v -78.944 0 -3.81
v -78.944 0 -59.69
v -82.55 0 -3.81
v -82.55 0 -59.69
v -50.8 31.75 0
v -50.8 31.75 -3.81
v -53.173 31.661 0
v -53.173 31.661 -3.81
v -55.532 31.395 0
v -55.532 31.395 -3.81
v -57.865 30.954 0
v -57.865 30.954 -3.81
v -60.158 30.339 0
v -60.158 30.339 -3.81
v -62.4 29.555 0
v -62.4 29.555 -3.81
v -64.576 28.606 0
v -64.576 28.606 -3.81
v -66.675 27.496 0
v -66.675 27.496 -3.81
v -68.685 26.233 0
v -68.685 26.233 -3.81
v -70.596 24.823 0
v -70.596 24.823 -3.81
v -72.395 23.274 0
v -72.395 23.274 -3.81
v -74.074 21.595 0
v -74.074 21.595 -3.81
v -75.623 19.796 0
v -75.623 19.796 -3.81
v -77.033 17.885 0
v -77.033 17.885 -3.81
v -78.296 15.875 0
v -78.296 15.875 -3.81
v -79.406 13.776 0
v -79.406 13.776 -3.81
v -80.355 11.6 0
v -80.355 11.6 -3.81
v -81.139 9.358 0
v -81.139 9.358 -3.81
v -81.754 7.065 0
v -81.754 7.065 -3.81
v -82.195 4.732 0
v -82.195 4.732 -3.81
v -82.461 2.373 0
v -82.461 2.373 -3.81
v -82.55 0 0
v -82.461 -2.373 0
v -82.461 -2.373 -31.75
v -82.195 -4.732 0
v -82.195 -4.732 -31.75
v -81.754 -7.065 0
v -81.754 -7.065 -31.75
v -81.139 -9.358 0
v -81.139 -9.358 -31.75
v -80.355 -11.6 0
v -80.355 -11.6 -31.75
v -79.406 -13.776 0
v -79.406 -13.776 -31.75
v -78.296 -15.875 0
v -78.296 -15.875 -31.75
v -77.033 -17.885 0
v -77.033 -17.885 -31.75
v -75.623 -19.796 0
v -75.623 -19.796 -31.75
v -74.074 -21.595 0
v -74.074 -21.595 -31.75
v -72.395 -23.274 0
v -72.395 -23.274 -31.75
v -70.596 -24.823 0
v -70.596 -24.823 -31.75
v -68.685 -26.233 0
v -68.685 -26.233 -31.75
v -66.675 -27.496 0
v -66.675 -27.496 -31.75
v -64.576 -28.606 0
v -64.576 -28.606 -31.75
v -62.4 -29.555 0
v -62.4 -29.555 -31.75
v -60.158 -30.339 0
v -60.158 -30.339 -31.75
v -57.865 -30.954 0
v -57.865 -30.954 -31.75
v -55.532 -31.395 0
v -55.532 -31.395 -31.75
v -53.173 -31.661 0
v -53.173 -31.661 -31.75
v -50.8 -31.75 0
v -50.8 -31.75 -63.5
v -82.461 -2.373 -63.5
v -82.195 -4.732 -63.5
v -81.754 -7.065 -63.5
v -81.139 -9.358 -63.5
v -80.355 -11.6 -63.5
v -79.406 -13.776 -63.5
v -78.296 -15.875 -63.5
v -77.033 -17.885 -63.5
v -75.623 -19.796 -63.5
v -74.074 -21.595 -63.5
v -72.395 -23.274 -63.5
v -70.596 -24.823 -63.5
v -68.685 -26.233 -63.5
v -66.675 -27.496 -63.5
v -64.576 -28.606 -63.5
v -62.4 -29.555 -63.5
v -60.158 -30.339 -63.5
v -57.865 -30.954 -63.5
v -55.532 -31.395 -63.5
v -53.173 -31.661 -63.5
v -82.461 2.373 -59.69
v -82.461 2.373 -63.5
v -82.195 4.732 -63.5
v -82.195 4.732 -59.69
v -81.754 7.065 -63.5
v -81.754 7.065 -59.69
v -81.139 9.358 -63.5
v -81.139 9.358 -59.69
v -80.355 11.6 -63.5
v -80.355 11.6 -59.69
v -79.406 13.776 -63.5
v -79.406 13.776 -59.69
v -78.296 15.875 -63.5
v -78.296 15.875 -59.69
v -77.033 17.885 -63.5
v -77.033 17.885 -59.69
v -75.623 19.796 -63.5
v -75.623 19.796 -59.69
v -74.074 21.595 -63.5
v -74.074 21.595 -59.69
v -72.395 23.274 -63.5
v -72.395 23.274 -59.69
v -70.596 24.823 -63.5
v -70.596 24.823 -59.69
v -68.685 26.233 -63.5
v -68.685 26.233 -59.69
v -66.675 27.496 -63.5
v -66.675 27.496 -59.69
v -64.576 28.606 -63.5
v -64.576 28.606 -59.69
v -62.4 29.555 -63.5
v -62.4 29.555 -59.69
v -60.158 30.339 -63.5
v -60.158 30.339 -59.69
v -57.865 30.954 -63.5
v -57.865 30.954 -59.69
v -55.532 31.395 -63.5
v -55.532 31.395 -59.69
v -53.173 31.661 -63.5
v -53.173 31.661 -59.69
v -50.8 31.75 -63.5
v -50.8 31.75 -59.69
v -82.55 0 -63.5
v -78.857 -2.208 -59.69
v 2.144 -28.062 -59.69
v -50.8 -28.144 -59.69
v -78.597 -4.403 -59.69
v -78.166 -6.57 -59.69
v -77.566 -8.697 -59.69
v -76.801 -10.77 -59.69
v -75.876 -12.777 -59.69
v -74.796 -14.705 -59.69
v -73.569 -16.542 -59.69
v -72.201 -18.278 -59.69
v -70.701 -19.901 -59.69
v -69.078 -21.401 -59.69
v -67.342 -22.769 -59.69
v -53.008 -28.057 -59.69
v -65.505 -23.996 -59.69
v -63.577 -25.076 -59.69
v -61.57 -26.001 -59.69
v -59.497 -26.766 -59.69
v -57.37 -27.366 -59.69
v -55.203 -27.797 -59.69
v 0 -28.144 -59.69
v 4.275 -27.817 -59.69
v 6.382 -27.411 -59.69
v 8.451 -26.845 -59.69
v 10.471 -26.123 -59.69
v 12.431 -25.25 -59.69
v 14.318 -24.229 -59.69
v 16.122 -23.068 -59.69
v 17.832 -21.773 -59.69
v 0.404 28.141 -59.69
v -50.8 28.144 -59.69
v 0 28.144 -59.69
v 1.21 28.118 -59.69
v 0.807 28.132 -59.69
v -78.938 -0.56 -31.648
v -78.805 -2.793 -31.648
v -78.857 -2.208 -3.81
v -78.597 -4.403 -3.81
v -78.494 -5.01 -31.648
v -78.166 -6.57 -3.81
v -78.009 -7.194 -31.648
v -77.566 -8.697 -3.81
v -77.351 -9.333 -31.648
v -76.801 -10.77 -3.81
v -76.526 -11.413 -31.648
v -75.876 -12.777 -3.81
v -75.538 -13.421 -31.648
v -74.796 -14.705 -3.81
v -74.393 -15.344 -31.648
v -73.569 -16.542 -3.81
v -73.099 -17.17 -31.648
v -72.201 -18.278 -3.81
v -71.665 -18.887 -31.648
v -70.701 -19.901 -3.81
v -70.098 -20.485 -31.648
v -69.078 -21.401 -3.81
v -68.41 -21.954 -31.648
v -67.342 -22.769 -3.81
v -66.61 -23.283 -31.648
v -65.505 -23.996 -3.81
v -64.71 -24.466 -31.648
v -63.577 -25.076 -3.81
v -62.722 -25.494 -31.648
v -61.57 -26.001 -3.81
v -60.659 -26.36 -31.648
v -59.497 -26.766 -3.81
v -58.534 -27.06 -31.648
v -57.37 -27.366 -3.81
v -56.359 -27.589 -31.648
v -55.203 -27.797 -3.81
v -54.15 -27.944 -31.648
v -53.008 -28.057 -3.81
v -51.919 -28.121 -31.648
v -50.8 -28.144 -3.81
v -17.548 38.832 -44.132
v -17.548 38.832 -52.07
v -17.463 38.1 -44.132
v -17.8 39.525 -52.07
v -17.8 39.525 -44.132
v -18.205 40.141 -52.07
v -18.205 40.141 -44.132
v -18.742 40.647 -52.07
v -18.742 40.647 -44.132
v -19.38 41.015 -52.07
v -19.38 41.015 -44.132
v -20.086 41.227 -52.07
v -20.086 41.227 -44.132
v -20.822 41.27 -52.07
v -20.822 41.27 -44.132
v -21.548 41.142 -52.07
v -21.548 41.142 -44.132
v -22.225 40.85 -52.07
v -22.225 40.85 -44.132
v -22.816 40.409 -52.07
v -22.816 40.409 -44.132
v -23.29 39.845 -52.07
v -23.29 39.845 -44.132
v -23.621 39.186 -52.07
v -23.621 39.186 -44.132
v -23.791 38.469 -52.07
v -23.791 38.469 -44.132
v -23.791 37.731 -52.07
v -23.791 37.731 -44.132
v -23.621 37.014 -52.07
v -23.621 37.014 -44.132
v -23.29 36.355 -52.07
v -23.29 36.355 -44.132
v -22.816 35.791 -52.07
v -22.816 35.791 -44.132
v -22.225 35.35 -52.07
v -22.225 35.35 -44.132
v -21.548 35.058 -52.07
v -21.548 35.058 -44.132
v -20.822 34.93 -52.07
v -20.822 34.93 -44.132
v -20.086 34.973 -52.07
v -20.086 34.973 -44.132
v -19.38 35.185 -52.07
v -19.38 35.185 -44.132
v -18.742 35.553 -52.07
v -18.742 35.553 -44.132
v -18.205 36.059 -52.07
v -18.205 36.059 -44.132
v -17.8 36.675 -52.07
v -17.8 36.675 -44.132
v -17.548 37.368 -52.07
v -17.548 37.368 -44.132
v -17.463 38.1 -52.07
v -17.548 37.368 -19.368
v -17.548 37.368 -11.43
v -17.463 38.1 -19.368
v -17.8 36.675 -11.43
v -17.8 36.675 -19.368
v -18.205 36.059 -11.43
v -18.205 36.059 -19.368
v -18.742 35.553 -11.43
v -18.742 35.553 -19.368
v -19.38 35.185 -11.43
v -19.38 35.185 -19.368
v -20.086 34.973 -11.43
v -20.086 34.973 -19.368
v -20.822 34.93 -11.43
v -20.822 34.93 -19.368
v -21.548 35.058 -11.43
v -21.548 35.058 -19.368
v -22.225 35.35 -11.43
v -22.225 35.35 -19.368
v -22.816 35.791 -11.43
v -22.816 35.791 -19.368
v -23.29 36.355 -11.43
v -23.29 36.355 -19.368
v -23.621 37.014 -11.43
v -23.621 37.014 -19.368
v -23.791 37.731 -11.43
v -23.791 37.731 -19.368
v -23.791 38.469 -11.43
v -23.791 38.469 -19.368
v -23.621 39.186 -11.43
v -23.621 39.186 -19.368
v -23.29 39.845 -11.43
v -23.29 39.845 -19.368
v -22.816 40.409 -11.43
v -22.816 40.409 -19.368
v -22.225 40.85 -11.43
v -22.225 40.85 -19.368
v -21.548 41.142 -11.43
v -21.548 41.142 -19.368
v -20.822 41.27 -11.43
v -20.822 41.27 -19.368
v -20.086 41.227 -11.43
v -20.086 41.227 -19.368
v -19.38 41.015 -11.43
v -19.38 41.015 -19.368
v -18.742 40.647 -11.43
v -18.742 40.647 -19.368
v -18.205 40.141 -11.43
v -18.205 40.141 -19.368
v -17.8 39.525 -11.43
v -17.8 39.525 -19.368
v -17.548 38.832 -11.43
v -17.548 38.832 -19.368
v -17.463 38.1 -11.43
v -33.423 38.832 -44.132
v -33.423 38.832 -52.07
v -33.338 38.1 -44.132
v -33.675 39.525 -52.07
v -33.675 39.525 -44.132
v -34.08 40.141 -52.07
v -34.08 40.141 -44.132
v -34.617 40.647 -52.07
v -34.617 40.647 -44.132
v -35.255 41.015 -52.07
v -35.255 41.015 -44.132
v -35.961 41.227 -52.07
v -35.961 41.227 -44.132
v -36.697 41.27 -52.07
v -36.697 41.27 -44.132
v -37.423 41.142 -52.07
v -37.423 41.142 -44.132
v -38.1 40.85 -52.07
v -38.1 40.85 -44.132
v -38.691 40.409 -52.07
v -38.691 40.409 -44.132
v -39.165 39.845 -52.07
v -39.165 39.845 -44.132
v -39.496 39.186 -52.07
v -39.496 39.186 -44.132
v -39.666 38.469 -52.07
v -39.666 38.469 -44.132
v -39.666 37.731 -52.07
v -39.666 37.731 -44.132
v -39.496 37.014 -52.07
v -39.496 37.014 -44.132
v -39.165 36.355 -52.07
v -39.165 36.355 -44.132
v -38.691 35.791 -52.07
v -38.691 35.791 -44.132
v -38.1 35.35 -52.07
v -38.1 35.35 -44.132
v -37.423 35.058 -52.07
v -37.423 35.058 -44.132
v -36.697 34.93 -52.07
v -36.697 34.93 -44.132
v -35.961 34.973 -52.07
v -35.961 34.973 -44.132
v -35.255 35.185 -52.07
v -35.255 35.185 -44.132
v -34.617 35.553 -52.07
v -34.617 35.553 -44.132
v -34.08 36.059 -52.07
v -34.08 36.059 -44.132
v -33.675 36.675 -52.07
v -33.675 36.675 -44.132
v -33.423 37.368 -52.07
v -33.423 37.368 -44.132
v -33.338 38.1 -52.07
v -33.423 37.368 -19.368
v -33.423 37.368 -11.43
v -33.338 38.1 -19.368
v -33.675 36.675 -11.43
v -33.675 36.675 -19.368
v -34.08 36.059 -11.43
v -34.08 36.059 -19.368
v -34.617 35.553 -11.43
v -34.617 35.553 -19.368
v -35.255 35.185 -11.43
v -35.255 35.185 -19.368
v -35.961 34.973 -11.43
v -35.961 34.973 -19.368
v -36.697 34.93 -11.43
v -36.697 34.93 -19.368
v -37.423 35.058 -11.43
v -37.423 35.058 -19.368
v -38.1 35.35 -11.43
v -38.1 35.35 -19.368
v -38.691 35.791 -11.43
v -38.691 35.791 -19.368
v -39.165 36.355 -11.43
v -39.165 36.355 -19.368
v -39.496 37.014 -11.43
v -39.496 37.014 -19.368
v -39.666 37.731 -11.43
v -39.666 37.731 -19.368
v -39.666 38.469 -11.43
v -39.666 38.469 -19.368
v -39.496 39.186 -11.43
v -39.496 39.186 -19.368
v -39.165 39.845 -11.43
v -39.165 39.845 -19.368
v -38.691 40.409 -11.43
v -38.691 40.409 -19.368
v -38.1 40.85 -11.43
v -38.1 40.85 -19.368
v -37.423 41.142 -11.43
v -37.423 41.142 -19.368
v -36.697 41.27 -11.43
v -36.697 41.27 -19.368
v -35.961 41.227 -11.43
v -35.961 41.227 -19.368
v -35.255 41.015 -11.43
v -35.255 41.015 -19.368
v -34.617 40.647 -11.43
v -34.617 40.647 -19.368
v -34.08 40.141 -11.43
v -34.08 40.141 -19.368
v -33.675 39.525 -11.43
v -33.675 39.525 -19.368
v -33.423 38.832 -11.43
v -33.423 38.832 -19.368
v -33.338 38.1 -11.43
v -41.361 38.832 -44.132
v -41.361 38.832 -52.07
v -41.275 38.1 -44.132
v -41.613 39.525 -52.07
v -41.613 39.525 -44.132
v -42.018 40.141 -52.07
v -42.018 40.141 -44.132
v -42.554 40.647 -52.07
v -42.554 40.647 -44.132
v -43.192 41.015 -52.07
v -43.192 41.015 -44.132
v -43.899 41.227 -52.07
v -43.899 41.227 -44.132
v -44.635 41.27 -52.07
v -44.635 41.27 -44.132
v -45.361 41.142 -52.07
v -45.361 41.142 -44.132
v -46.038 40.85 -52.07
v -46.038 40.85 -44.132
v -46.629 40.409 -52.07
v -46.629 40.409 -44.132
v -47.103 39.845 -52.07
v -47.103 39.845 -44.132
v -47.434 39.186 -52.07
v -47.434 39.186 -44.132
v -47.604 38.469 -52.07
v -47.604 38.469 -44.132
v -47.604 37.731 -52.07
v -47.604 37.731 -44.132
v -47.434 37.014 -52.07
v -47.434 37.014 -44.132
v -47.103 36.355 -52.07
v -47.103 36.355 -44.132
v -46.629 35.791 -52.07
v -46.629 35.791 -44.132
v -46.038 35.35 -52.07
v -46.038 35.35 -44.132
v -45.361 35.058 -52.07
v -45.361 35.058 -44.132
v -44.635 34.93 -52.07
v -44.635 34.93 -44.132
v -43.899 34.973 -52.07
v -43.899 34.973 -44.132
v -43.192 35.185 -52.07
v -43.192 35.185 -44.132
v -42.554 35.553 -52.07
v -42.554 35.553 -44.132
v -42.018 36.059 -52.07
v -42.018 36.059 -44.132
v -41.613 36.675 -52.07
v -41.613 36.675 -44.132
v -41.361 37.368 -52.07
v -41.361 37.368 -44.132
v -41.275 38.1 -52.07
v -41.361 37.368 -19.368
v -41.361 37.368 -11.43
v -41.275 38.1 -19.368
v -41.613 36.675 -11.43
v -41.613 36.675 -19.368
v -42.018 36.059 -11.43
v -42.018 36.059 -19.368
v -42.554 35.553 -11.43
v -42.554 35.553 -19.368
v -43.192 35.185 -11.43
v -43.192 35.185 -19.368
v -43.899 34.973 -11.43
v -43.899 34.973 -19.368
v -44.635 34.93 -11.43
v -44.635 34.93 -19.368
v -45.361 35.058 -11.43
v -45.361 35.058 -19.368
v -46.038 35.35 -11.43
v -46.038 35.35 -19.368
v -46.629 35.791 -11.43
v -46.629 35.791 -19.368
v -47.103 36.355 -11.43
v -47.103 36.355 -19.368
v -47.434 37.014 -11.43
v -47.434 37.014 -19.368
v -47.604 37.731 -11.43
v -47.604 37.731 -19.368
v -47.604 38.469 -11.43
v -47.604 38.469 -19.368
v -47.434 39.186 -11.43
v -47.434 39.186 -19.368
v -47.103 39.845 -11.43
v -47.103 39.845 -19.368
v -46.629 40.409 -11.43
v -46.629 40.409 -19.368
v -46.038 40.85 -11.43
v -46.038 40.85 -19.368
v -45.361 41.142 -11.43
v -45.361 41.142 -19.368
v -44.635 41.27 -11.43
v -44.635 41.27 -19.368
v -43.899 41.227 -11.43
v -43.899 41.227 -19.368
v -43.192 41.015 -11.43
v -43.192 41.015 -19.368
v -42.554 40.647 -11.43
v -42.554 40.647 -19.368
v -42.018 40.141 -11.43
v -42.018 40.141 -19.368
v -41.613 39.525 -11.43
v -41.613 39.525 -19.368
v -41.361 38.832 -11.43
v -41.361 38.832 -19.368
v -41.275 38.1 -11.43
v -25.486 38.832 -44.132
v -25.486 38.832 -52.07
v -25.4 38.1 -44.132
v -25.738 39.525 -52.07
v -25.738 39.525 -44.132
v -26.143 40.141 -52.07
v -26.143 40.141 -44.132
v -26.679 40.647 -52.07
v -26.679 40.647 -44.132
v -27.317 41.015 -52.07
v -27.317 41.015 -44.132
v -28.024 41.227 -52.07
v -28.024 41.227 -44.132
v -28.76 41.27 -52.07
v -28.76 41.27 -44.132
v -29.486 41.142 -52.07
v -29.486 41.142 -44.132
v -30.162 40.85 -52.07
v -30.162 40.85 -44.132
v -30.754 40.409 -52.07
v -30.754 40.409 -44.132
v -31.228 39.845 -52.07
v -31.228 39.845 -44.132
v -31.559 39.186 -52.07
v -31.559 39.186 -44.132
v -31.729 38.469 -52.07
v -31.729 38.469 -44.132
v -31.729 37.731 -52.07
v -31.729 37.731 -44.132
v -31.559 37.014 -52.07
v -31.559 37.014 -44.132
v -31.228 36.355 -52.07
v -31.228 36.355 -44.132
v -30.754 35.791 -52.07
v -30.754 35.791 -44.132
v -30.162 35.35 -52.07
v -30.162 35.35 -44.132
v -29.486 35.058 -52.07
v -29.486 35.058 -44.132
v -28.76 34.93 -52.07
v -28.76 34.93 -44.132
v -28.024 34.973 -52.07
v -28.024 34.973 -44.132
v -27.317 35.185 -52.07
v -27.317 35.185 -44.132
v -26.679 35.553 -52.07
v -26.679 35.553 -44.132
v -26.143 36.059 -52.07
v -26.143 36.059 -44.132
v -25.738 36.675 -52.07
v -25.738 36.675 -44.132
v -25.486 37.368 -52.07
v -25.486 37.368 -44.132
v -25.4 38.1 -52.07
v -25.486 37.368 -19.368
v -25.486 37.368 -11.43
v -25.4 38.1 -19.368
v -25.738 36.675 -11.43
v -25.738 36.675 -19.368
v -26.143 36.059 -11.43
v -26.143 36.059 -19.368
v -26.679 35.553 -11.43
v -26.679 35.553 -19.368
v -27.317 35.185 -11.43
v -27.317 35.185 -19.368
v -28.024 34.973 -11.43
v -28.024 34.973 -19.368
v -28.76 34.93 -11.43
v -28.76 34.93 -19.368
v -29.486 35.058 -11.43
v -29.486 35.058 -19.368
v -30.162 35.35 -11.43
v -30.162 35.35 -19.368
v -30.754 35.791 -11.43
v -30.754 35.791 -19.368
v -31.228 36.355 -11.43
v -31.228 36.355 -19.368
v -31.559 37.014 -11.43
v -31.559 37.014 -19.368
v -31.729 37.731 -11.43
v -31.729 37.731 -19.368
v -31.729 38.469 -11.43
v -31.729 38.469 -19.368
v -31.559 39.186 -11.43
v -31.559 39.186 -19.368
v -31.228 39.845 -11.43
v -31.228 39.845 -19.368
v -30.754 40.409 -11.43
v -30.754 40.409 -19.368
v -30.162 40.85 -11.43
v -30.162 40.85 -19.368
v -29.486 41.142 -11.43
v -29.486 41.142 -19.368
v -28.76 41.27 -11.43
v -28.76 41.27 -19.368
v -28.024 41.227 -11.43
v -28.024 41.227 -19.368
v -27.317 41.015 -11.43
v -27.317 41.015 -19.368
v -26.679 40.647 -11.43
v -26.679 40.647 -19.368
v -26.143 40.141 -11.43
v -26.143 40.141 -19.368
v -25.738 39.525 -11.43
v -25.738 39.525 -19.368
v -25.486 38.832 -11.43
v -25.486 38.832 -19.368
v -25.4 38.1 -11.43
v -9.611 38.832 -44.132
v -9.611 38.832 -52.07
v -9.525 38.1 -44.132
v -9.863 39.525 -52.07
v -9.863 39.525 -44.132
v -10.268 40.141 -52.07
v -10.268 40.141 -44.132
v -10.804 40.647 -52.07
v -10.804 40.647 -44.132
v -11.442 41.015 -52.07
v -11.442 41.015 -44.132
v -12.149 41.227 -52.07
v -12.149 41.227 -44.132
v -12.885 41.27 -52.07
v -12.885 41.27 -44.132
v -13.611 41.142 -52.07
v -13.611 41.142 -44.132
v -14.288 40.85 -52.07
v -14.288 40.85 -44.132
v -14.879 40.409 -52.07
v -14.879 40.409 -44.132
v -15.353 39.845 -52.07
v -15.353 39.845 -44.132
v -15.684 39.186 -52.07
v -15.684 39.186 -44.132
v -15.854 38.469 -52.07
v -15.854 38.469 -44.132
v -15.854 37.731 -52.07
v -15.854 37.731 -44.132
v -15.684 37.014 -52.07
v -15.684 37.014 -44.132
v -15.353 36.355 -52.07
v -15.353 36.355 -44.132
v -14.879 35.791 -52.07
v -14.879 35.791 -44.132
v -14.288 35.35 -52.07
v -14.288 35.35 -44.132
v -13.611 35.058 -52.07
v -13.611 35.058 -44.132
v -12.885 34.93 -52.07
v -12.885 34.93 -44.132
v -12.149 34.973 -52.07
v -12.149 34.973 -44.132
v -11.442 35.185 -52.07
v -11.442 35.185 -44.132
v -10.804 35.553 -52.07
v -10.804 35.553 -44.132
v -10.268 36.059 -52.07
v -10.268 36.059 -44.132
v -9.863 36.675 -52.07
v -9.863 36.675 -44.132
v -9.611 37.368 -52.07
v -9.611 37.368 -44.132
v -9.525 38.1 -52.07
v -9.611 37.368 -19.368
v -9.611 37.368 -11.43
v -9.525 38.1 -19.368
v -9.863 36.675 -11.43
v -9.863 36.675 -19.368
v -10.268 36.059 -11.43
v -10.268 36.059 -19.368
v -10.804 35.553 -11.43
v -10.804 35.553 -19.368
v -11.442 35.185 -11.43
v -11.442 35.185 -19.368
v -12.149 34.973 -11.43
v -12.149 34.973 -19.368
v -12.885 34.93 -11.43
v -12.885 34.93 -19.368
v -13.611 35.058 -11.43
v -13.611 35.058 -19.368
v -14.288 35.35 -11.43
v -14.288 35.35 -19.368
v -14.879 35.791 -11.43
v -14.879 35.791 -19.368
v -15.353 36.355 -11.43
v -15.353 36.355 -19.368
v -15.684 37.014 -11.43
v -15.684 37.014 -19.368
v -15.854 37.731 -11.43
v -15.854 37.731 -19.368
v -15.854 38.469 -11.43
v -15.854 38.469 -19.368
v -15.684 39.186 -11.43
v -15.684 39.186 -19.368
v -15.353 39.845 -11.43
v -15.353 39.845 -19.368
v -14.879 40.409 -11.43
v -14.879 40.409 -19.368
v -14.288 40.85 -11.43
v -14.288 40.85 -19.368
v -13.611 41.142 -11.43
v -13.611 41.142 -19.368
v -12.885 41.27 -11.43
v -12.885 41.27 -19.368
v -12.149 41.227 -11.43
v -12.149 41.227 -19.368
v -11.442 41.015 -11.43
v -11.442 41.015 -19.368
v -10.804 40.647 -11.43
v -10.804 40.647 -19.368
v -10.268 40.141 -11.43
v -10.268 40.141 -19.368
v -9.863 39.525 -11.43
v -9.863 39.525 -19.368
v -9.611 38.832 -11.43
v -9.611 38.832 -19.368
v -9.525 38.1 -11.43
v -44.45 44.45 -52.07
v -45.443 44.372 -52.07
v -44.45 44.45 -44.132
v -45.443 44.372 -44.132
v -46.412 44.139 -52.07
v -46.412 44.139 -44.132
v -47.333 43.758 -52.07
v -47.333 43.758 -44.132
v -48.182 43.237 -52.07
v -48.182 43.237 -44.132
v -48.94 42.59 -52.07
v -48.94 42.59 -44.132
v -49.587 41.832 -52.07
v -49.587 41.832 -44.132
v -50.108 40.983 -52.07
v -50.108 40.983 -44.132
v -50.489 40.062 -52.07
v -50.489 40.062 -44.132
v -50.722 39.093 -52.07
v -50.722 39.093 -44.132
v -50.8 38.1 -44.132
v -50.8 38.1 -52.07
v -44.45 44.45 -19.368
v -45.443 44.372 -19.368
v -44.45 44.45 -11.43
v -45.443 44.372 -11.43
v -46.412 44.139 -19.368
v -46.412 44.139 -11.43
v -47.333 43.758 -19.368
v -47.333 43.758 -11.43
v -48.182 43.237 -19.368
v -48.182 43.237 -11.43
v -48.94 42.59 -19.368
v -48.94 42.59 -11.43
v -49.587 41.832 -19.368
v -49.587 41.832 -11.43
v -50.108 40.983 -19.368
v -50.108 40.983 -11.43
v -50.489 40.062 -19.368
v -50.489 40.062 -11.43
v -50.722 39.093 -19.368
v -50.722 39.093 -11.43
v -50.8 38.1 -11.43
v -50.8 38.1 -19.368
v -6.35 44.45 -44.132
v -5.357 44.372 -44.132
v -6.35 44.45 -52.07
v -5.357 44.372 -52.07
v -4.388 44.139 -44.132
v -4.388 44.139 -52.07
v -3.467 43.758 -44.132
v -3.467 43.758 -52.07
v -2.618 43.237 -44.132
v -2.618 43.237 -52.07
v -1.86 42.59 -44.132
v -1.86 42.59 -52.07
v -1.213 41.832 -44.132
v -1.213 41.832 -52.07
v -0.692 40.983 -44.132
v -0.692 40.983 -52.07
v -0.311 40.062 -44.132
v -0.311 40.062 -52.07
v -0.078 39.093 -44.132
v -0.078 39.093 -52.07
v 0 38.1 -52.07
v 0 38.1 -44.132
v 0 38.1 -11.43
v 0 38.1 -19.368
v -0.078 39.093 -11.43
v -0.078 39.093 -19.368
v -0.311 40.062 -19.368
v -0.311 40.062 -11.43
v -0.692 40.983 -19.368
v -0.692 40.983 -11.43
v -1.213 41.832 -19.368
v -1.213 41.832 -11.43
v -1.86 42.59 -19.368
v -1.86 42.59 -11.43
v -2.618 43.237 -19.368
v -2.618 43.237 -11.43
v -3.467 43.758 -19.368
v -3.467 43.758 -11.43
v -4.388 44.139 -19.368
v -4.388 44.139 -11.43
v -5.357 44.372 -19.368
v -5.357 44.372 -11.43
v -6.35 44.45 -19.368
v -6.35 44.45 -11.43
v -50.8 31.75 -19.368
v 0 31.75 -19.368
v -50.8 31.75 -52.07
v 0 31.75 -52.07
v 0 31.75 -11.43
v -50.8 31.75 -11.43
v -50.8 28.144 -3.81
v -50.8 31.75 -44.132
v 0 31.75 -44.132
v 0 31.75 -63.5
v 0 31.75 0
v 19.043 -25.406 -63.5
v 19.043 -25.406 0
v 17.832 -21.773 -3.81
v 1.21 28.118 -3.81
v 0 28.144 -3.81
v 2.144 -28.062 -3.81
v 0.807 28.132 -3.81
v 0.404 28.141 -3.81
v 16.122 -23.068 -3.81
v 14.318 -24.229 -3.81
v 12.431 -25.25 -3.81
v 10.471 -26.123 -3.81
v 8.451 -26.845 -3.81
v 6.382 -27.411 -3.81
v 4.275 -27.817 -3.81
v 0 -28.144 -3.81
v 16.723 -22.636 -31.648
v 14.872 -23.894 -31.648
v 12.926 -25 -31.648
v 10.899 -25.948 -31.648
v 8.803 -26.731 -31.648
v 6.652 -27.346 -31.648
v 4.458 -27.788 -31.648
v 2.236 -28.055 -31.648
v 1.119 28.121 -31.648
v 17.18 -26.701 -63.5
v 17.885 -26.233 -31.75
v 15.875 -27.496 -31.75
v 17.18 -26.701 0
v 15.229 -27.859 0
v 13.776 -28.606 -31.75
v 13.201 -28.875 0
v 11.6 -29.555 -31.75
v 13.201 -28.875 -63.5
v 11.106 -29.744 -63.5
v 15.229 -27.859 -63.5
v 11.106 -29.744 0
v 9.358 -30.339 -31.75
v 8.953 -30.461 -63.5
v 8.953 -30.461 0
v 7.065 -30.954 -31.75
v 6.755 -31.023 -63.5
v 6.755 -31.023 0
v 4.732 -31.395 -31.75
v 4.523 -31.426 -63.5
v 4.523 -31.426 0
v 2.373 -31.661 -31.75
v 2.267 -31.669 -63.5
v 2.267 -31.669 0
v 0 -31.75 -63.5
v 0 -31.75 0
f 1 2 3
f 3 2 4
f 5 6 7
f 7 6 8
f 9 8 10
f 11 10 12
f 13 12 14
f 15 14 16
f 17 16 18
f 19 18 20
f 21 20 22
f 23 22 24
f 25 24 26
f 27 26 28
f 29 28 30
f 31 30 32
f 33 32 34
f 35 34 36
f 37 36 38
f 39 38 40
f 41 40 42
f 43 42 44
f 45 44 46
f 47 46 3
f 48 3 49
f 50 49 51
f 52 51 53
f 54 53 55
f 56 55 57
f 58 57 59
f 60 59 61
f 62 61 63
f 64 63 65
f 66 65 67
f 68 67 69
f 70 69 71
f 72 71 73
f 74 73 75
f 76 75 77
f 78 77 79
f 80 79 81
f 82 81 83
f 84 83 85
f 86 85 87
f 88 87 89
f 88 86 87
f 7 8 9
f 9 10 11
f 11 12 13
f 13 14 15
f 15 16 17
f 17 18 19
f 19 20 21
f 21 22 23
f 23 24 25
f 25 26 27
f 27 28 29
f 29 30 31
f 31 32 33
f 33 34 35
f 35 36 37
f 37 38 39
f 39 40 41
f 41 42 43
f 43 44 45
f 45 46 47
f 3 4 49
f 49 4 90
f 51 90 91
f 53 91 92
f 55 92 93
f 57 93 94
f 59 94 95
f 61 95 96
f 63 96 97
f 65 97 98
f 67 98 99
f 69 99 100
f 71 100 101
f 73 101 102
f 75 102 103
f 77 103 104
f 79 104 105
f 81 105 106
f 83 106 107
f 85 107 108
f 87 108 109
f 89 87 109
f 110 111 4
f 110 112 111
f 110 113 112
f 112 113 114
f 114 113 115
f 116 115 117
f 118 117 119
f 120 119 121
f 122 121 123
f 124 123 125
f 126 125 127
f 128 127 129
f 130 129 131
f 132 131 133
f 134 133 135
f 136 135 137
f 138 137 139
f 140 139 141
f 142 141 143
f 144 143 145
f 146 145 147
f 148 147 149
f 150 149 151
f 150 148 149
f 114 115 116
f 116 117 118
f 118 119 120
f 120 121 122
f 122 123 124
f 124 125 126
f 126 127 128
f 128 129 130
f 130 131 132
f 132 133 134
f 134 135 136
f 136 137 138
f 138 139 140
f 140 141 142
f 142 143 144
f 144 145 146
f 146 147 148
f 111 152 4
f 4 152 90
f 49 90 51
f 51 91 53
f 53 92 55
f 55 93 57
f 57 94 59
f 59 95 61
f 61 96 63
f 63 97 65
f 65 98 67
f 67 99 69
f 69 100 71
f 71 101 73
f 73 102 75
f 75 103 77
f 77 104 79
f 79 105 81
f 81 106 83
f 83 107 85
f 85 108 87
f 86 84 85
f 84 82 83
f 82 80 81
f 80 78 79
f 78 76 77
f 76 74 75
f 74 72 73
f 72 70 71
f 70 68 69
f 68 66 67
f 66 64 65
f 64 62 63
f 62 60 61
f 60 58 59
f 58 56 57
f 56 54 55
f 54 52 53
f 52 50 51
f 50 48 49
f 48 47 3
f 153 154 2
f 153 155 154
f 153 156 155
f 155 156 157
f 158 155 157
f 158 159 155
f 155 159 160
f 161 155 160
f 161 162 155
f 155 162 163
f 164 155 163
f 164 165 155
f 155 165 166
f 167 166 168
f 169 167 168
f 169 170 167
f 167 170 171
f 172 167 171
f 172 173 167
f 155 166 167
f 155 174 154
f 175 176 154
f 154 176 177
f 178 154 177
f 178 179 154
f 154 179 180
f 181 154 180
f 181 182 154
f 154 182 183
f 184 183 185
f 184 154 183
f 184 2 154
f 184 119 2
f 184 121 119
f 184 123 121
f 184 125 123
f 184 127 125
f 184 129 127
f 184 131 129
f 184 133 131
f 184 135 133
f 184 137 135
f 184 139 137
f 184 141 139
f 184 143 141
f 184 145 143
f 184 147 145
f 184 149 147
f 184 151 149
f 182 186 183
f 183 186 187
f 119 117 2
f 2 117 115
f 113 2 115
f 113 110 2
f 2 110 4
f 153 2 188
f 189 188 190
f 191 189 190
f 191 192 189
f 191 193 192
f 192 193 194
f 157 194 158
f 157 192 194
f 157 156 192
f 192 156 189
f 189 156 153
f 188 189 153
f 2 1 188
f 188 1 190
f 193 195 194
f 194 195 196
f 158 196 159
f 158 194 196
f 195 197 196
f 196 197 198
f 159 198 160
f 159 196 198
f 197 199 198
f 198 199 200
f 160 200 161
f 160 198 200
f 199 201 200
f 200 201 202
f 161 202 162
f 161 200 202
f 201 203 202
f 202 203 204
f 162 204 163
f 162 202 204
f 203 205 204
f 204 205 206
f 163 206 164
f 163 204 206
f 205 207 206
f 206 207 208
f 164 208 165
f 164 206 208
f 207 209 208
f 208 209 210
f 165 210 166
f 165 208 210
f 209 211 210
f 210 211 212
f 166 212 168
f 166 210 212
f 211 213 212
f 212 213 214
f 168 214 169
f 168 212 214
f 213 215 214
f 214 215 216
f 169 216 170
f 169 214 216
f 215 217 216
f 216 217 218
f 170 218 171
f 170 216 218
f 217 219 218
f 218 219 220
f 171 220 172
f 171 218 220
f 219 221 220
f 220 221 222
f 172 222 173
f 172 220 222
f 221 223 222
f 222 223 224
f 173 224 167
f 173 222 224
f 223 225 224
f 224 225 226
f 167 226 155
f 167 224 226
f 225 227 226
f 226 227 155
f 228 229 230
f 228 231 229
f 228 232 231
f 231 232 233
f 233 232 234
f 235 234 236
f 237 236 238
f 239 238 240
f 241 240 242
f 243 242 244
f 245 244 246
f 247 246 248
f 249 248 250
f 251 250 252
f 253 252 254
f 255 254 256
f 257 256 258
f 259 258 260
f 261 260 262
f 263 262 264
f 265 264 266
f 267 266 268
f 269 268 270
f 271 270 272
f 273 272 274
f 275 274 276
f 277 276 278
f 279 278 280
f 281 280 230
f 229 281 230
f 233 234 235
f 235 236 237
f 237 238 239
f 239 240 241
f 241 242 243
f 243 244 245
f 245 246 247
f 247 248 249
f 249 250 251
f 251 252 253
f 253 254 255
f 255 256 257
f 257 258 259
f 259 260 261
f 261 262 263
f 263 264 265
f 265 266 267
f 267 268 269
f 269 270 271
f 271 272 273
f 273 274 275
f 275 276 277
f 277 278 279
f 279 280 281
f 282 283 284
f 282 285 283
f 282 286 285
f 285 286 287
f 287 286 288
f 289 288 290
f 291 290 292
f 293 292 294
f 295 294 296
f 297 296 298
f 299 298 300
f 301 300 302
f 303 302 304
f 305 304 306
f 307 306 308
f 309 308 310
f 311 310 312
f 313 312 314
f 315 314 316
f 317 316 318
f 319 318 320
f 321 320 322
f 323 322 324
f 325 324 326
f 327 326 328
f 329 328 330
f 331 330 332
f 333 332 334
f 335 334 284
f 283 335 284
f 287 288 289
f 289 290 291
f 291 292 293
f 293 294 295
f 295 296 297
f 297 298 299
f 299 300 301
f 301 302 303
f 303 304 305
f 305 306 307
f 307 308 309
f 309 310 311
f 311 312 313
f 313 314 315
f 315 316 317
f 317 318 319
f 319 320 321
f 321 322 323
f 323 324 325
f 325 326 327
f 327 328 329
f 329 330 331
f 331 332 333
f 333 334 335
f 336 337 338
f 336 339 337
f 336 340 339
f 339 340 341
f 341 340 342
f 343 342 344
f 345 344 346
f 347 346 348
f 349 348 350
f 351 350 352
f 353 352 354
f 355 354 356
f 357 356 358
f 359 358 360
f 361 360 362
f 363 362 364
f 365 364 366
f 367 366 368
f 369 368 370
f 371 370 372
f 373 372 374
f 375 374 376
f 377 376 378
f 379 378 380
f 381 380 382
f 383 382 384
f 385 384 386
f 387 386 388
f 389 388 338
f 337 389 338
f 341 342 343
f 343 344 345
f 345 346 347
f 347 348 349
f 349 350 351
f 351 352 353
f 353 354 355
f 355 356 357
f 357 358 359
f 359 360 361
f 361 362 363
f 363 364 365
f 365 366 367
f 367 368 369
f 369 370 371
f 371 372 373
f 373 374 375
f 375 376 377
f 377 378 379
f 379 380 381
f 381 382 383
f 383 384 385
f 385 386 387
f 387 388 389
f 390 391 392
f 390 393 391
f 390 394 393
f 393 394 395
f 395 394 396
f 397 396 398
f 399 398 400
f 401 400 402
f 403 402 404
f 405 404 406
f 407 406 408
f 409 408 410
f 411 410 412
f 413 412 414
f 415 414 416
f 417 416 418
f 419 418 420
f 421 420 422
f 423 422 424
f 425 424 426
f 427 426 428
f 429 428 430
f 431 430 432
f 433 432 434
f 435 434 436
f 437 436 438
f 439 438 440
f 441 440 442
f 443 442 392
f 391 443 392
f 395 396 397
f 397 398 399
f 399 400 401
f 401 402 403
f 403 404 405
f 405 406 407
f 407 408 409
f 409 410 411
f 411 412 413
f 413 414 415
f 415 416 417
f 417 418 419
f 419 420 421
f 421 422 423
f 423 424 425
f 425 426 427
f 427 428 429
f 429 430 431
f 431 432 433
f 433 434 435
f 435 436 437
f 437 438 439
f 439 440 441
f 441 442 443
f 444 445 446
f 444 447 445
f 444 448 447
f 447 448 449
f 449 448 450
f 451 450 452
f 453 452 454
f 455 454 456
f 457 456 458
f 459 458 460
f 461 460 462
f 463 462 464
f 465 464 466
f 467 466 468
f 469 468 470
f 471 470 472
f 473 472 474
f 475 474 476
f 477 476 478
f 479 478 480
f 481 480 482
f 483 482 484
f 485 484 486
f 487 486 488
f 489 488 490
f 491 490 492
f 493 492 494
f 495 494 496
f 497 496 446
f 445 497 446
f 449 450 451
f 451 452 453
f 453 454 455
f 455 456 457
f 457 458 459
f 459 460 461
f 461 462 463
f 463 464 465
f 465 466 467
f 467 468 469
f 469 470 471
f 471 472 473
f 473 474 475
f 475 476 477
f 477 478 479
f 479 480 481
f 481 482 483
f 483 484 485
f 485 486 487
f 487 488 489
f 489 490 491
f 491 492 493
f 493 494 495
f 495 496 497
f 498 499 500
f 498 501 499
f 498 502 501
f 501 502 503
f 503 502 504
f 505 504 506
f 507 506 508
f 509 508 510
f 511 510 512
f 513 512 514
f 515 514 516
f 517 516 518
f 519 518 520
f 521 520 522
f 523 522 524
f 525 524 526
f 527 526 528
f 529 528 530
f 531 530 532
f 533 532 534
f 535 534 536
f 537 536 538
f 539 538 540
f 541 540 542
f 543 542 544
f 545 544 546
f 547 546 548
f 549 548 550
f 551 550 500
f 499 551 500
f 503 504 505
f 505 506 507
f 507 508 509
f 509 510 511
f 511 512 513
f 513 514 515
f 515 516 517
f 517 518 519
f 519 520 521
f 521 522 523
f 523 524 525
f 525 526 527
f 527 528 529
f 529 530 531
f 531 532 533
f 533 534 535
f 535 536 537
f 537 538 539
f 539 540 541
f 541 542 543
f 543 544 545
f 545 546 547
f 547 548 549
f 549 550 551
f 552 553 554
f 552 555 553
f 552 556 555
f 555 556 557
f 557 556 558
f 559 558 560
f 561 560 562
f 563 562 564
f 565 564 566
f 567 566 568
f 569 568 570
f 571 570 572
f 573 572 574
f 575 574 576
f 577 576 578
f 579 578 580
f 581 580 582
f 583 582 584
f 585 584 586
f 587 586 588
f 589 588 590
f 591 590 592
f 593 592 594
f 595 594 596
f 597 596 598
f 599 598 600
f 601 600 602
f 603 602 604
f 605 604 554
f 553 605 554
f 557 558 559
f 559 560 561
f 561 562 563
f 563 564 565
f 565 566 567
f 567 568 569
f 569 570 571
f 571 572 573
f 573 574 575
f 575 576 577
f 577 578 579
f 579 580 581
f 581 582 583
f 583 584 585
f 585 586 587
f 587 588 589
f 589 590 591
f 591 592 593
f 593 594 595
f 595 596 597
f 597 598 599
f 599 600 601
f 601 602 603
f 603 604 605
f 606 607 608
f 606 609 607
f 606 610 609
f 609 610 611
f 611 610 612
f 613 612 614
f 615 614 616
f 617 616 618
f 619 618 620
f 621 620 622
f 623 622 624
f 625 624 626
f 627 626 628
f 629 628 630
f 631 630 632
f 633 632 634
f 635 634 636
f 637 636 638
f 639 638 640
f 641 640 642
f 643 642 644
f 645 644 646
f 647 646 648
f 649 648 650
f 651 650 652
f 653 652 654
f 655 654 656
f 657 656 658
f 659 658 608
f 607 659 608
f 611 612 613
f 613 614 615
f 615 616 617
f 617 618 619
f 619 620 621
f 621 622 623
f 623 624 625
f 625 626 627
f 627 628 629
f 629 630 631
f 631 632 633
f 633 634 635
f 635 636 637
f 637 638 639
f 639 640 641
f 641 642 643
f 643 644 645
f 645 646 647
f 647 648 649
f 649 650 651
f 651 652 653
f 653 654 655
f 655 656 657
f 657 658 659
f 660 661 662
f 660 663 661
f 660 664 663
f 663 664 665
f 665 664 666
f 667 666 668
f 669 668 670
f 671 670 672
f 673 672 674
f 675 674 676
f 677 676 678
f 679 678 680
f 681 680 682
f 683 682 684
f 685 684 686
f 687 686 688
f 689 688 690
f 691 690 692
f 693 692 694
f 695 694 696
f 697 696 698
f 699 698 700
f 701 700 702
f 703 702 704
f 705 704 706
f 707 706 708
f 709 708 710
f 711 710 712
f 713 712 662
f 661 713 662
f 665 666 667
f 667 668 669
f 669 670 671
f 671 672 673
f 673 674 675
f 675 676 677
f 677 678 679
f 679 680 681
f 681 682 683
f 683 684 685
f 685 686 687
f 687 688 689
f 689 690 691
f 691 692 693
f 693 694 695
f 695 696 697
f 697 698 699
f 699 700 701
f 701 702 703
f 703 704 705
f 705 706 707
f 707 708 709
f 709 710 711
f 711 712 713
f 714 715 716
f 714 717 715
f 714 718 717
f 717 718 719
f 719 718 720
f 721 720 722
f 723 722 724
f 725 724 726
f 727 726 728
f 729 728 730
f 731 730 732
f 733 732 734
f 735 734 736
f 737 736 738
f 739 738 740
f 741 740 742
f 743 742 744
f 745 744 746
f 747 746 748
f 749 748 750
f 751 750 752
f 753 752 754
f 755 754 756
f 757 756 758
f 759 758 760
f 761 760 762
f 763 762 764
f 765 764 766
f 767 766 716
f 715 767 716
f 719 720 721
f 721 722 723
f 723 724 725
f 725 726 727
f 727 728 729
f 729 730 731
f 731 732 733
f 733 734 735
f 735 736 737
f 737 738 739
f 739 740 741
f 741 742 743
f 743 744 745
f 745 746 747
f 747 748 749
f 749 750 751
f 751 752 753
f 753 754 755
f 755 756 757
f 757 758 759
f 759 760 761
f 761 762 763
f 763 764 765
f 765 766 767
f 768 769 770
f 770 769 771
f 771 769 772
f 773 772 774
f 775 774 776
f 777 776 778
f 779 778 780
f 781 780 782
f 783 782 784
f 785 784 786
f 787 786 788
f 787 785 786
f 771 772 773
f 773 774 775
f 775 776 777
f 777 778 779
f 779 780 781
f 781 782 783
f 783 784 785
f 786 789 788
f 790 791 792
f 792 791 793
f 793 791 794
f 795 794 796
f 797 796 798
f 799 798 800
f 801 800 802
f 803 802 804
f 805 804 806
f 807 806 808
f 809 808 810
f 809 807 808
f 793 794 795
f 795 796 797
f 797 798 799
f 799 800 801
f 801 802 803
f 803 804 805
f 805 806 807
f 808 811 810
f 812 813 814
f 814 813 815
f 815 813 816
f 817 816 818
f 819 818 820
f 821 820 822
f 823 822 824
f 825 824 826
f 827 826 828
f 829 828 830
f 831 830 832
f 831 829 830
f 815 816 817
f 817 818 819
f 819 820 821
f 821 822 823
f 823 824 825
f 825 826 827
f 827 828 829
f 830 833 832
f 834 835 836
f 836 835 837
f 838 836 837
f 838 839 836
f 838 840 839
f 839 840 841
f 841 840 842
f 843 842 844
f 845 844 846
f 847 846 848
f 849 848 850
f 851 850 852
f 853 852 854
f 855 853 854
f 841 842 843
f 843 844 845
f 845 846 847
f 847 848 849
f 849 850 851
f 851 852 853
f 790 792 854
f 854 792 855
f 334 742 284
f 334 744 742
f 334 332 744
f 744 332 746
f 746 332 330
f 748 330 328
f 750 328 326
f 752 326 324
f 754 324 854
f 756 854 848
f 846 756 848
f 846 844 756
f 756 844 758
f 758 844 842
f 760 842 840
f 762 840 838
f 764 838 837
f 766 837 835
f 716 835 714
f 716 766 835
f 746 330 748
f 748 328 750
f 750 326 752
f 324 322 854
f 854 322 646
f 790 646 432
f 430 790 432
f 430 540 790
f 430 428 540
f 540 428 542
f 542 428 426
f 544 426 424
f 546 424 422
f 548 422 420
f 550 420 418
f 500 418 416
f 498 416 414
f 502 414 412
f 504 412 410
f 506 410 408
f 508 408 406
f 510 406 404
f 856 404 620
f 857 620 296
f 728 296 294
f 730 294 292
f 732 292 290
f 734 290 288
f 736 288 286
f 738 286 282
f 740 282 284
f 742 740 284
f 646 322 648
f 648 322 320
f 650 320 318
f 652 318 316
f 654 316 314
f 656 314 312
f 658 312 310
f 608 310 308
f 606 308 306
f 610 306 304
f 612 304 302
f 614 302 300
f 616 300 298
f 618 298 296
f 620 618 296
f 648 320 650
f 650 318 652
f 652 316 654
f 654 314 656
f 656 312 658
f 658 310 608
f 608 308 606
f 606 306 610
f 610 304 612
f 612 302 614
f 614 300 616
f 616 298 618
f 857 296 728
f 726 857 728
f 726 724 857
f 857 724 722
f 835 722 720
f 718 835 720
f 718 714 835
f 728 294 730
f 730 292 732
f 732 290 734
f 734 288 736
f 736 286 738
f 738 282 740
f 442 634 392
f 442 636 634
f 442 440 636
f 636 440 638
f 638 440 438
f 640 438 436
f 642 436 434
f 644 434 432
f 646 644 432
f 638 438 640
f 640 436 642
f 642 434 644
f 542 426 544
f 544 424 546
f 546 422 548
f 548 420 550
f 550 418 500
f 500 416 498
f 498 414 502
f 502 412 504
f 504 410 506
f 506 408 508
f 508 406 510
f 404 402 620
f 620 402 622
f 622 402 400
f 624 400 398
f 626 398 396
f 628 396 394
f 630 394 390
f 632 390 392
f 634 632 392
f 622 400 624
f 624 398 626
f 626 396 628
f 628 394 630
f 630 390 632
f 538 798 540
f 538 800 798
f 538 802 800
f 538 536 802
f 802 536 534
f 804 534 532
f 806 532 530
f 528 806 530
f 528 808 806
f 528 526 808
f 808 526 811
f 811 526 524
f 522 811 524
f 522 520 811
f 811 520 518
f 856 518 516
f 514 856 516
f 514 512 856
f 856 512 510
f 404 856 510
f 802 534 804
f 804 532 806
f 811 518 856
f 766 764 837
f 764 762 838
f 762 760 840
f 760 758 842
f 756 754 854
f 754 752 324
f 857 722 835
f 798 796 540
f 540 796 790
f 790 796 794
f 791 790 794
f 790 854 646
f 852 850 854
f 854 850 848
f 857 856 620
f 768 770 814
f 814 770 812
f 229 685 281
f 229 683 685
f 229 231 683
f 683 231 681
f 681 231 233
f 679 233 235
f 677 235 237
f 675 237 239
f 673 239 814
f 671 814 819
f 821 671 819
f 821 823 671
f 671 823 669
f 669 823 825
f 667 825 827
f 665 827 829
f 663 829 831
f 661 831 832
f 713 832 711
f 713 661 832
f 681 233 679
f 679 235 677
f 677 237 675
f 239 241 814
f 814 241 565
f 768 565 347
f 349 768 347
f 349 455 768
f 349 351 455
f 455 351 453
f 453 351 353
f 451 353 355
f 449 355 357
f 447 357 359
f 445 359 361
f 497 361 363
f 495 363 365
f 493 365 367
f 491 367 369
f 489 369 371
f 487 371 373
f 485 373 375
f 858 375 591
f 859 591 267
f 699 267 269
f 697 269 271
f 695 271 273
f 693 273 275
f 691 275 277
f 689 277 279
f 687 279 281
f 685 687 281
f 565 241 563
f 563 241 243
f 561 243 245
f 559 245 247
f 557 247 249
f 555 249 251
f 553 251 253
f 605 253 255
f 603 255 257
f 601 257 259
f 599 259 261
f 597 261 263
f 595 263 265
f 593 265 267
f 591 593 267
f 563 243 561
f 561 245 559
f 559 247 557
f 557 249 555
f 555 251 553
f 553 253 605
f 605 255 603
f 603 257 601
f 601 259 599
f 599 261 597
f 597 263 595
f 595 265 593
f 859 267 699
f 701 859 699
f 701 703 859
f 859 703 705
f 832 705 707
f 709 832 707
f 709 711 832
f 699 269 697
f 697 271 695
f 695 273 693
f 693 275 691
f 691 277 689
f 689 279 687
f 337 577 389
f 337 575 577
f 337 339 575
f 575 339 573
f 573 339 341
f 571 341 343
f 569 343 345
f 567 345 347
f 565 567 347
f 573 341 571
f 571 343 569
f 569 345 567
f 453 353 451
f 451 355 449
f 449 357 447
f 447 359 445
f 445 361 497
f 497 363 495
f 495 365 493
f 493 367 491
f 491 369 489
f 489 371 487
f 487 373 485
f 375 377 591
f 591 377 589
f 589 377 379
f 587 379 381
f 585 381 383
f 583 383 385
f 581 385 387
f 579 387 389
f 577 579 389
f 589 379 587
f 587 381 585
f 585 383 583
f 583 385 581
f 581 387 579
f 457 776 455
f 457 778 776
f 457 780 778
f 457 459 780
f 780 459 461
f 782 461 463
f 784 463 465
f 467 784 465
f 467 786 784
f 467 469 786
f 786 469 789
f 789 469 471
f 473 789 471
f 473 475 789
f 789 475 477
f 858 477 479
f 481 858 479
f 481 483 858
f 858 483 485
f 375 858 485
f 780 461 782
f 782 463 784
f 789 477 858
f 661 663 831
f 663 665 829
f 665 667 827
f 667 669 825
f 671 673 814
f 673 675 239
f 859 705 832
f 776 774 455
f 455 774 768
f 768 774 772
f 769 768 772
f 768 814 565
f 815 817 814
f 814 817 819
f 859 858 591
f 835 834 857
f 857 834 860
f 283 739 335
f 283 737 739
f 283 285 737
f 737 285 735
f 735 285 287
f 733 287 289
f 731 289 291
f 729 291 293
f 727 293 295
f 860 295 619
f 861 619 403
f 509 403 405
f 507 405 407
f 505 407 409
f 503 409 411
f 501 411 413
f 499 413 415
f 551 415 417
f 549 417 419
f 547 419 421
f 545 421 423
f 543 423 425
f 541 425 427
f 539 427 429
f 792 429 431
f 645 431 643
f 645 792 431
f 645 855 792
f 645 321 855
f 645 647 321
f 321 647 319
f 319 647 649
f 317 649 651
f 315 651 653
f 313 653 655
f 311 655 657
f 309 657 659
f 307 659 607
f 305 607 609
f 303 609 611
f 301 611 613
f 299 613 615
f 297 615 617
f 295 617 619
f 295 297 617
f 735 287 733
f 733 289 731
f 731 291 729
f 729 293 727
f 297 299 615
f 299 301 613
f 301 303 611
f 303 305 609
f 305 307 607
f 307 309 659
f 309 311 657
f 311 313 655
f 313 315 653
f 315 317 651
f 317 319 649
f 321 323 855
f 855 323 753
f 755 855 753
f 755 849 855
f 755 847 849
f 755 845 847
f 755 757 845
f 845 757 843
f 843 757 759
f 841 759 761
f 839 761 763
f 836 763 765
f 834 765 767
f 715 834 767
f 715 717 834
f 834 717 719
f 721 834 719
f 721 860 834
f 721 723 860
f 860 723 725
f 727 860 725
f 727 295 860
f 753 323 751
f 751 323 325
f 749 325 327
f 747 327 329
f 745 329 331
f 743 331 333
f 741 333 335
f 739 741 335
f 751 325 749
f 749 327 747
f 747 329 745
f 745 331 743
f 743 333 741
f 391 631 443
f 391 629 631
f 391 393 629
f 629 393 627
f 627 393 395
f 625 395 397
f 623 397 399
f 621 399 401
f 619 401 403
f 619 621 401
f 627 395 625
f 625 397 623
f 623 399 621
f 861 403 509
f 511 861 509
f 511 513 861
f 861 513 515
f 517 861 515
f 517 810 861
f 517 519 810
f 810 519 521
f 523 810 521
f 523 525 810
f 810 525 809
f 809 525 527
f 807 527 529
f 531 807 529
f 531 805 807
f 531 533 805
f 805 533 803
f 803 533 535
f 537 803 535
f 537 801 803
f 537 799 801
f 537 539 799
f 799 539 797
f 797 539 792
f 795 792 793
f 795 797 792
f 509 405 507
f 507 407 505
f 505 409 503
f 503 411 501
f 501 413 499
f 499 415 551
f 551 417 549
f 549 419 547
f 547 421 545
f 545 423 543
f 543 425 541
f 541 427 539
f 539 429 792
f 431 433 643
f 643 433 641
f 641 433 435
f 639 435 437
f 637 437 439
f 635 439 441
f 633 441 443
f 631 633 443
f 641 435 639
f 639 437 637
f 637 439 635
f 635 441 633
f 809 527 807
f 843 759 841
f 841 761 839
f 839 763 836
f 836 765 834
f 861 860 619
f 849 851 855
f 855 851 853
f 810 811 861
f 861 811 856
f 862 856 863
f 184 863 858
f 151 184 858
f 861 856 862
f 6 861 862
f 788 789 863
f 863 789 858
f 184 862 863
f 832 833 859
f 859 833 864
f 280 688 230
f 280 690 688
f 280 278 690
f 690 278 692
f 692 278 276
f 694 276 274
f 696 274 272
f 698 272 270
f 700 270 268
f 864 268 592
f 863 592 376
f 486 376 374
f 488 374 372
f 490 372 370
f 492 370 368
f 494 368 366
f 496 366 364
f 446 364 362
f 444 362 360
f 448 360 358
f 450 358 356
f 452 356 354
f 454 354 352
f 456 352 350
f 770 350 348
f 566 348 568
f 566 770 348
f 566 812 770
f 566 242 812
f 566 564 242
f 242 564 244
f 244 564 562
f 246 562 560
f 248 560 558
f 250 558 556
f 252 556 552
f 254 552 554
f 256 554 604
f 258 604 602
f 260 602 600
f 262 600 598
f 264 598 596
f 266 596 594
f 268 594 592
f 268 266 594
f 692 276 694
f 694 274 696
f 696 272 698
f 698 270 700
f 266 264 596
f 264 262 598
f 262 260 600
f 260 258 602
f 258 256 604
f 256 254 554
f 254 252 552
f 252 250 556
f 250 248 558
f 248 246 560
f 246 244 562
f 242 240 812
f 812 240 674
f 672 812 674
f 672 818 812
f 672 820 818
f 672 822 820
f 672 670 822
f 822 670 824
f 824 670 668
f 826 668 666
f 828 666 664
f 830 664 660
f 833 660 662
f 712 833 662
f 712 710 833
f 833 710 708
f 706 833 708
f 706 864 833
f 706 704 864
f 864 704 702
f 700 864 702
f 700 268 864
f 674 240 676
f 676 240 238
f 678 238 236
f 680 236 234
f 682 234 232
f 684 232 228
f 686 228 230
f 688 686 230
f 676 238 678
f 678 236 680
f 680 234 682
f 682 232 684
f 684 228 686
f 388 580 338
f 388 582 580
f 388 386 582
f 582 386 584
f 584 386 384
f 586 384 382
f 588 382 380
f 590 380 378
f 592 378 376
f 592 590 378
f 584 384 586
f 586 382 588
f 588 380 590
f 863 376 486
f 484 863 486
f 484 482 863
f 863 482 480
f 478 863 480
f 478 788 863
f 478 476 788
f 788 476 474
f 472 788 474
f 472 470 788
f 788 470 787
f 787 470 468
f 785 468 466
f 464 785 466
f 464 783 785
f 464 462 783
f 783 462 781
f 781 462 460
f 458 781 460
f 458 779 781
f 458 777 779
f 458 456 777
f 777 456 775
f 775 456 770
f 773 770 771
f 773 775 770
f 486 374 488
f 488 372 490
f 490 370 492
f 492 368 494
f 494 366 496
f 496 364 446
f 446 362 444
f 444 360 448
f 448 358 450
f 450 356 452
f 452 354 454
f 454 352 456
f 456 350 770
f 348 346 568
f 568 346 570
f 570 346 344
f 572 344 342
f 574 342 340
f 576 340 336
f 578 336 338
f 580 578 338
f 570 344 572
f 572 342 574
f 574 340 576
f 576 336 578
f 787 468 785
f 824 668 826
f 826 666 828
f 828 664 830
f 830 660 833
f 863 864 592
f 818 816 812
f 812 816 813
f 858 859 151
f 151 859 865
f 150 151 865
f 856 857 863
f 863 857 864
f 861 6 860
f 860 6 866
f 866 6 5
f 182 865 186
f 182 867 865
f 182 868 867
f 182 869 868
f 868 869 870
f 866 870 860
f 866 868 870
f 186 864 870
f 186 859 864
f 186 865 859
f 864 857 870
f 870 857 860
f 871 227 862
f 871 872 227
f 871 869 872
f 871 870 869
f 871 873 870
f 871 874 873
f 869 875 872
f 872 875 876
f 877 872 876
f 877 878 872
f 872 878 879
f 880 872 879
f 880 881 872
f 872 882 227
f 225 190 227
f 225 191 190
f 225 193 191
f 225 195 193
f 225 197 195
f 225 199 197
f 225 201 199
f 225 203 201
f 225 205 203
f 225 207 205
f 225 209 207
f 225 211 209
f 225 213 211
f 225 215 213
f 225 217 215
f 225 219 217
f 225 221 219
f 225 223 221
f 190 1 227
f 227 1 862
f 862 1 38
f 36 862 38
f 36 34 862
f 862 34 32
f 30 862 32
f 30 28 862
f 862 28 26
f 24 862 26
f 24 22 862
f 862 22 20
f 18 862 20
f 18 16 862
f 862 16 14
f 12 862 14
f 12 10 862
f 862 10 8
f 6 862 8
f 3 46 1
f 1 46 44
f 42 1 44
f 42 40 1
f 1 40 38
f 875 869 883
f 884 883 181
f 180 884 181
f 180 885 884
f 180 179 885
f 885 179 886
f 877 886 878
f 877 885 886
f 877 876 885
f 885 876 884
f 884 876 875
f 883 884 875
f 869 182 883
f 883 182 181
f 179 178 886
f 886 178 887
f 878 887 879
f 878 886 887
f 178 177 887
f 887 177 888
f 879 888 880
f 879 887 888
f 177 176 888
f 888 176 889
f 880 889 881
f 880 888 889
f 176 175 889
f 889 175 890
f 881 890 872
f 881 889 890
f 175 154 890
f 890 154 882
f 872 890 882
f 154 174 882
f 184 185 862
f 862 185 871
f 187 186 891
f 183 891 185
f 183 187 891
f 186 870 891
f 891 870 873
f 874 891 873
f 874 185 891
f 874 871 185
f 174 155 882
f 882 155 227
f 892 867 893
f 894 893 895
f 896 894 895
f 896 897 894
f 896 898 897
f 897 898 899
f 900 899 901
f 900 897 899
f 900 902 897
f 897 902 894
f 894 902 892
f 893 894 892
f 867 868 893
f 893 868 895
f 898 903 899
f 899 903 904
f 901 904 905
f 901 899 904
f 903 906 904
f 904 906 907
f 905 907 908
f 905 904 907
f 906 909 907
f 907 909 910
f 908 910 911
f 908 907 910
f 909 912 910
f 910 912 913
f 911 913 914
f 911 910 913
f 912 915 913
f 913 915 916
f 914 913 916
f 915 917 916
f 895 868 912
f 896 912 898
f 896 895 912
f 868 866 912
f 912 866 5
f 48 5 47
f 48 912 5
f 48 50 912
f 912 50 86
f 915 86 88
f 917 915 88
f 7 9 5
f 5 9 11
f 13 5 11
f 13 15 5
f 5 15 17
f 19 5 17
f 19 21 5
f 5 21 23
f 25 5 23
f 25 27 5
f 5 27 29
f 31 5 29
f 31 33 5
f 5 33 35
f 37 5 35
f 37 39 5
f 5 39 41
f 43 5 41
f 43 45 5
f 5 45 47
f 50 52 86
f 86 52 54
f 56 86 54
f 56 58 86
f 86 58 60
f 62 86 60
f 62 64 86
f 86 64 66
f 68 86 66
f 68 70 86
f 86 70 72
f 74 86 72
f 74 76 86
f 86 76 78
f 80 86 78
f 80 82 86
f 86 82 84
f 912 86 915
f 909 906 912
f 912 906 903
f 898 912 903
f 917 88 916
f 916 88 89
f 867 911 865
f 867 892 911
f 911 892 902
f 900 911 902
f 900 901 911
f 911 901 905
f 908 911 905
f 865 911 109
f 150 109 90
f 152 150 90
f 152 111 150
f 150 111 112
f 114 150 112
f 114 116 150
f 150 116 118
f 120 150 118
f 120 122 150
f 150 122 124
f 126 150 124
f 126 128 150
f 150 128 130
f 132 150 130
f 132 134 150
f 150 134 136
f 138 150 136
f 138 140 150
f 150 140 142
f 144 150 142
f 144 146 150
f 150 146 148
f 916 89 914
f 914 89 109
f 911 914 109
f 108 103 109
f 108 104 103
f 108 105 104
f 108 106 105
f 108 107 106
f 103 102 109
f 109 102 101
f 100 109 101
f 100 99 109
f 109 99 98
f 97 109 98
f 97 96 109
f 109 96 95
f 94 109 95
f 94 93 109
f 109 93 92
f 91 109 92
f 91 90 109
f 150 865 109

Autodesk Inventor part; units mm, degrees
ref_plane "YZ Plane" through (0, 0, 0) normal (1, 0, 0) x (0, 1, 0)
sketch "Sketch1" plane through (0, 0, 0) normal (0, 0, 1) x (1, 0, 0)
  arc A0 (-50.8, 31.75) -> (-50.8, -31.75) centre (-50.8, 0) ccw
  line L0 (-50.8, 31.75) -> (0, 31.75)
  line L1 (0, -31.75) -> (-50.8, -31.75)
  arc A1 (0, -31.75) -> (0, 31.75) centre (0, 0) ccw
extrude "Extrusion1" add sketch "Sketch1" against normal blind 63.5
ref_plane "Work Plane1" through (0, 0, -31.75) normal (0, 0, 1) x (1, 0, 0)
sketch "Sketch2" plane through (0, 0, -31.75) normal (0, 0, 1) x (1, 0, 0)
  arc A0 (-50.8, 31.75) -> (-50.8, -31.75) centre (-50.8, 0) ccw projected
  line L0 (-50.8, 31.75) -> (0, 31.75) projected
  arc A1 (0, -31.75) -> (0, 31.75) centre (0, 0) ccw projected
  line L1 (0, -31.75) -> (-50.8, -31.75) projected
  arc A2 (-50.8, 28.1437) -> (-50.8, -28.1437) centre (-50.8, 0) ccw
  line L2 (-50.8, 28.1437) -> (0, 28.1437)
  arc A3 (0, -28.1437) -> (0, 28.1437) centre (0, 0) ccw
  line L3 (0, -28.1437) -> (-50.8, -28.1437)
extrude "Extrusion2" cut sketch "Sketch2" along normal mid plane 55.88 contours L2 A3 L3 A2
sketch "Sketch3" plane through (0, 0, 0) normal (0, 0, 1) x (1, 0, 0)
  circle A0 centre (0, 0) radius 31.75
  line L0 (0, 31.75) -> (19.0425, -25.4056)
  dimension "d7" = 63.5
extrude "Extrusion3" cut sketch "Sketch3" against normal blind 63.5 contours A0 L0 picked at (8.7025, 12.4328)
sketch "Sketch4" plane through (-50.8, 31.75, 0) normal (0, 1, 0) x (1, 0, 0)
  line L0 (50.8, 0) -> (0, 0) projected
  line L1 (50.8, 0) -> (50.8, 63.5) projected
  line L2 (0, 63.5) -> (50.8, 63.5) projected
  line L3 (0, 0) -> (0, 63.5) projected
  line L4 (0, 31.75) -> (50.8, 31.75)
  line L5 (0, 0) -> (0, 63.5) projected
  line L6 (50.8, 0) -> (50.8, 63.5) projected
  line L7 (0, 11.43) -> (50.8, 11.43)
  line L8 (50.8, 11.43) -> (50.8, 52.07)
  line L9 (50.8, 52.07) -> (0, 52.07)
  line L10 (0, 52.07) -> (0, 11.43)
  line L11 (0, 19.3675) -> (50.8, 19.3675)
  line L12 (0, 44.1325) -> (50.8, 44.1325)
  dimension "d10" = 31.75
  dimension "d11" = 20.32
  dimension "d12" = 40.64
  dimension "d13" = 7.9375
  dimension "d14" = 7.9375
extrude "Extrusion4" add sketch "Sketch4" along normal blind 12.7 contours L7 L3 L11 L1 | L12 L3 L9 L1
sketch "Sketch5" plane through (-50.8, 31.75, -11.43) normal (0, 0, 1) x (1, 0, 0)
  line L0 (50.8, 0) -> (0, 0) projected
  line L1 (50.8, 0) -> (50.8, 12.7) projected
  line L2 (0, 12.7) -> (50.8, 12.7) projected
  line L3 (0, 0) -> (0, 12.7) projected
  circle A0 centre (6.35, 6.35) radius 6.35
  circle A1 centre (44.45, 6.35) radius 6.35
  line L4 (6.35, 12.7) -> (44.45, 12.7)
  line L5 (44.45, 0) -> (6.35, 0)
  line L6 (6.35, 6.35) -> (0, 6.35)
  line L7 (44.45, 6.35) -> (50.8, 6.35)
  point P0 (50.8, -31.75)
extrude "Extrusion5" cut sketch "Sketch5" against normal blind 63.5 contours A1 L2 L1 | L3 L2 A0
sketch "Sketch6" plane through (-50.8, 31.75, -11.43) normal (0, 0, 1) x (1, 0, 0)
  arc A0 (6.35, 12.7) -> (0, 6.35) centre (6.35, 6.35) ccw projected
  line L0 (0, 0) -> (0, 6.35) projected
  line L1 (50.8, 0) -> (0, 0) projected
  line L2 (50.8, 0) -> (50.8, 6.35) projected
  arc A1 (50.8, 6.35) -> (44.45, 12.7) centre (44.45, 6.35) ccw projected
  line L3 (6.35, 12.7) -> (44.45, 12.7) projected
  circle A2 centre (6.35, 6.35) radius 3.175
  line L4 (6.35, 6.35) -> (44.45, 6.35)
  circle A3 centre (14.2875, 6.35) radius 3.175
  circle A4 centre (22.225, 6.35) radius 3.175
  circle A5 centre (30.1625, 6.35) radius 3.175
  circle A6 centre (38.1, 6.35) radius 3.175
  point P0 (50.8, -31.75)
  dimension "d22" = 7.9375
  dimension "d31" = 6.35
extrude "Extrusion6" cut sketch "Sketch6" against normal blind 63.5 contours A2 | A6 L4 | L4 A6 | A5 L4 | L4 A5 | A4 L4 | L4 A4 | A3 L4 | L4 A3
ref_plane "Work Plane2" through (0, 31.75, -63.5) normal (0, -1, 0) x (1, 0, 0)
sketch "Sketch8" plane through (0, 31.75, -63.5) normal (0, -1, 0) x (1, 0, 0)
  line L0 (-50.8, 63.5) -> (-50.8, 63.5) projected
  line L1 (-50.8, 63.5) -> (-50.8, 52.07) projected
  line L2 (-50.8, 52.07) -> (-50.8, 44.1325) projected
  line L3 (-50.8, 44.1325) -> (-50.8, 19.3675) projected
  line L4 (-50.8, 19.3675) -> (-50.8, 11.43) projected
  line L5 (-50.8, 11.43) -> (-50.8, 0) projected
  line L6 (-50.8, 0) -> (-50.8, 0) projected
  line L7 (-50.8, 63.5) -> (-50.8, 0) projected
  line L8 (-50.8, 63.5) -> (-82.55, 63.5) projected
  line L9 (-82.55, 63.5) -> (-82.55, 0) projected
  line L10 (-82.55, 0) -> (-50.8, 0) projected
  line L11 (-50.8, 59.69) -> (-78.9437, 59.69) projected
  line L12 (-54.4877, 59.69) -> (-50.8, 59.69)
  line L13 (-78.9437, 3.81) -> (-78.9437, 59.69) projected
  line L14 (-50.8, 59.69) -> (-82.55, 59.69)
  line L15 (-78.9437, 59.69) -> (-78.9437, 3.81)
  line L16 (-82.55, 3.81) -> (-50.8, 3.81)
  line L17 (-50.8, 3.81) -> (-50.8, 59.69)
  line L18 (-82.55, 59.69) -> (-82.55, 3.81)
  line L19 (-50.8, 63.5) -> (-82.55, 63.5)
  line L20 (-82.55, 63.5) -> (-82.55, 59.69)
  line L21 (-82.55, 59.69) -> (-50.8, 59.69)
  line L22 (-50.8, 59.69) -> (-50.8, 63.5)
  line L23 (-78.9437, 59.69) -> (-50.8, 59.69)
  line L24 (-50.8, 59.69) -> (-50.8, 3.81)
  line L25 (-50.8, 3.81) -> (-78.9437, 3.81)
  line L26 (-78.9437, 3.81) -> (-78.9437, 59.69)
  line L27 (-82.55, 3.81) -> (-50.8, 3.81)
  line L28 (-50.8, 3.81) -> (-50.8, 0)
  line L29 (-50.8, 0) -> (-82.55, 0)
  line L30 (-82.55, 0) -> (-82.55, 3.81)
  point P0 (0, 63.5)
extrude "Extrusion7" cut sketch "Sketch8" along normal blind 31.75 contours L1 L2 L3 L4 L5 L16 L13 L11 | L14 L13 L16 L9
properties part number "Scoop_001"
